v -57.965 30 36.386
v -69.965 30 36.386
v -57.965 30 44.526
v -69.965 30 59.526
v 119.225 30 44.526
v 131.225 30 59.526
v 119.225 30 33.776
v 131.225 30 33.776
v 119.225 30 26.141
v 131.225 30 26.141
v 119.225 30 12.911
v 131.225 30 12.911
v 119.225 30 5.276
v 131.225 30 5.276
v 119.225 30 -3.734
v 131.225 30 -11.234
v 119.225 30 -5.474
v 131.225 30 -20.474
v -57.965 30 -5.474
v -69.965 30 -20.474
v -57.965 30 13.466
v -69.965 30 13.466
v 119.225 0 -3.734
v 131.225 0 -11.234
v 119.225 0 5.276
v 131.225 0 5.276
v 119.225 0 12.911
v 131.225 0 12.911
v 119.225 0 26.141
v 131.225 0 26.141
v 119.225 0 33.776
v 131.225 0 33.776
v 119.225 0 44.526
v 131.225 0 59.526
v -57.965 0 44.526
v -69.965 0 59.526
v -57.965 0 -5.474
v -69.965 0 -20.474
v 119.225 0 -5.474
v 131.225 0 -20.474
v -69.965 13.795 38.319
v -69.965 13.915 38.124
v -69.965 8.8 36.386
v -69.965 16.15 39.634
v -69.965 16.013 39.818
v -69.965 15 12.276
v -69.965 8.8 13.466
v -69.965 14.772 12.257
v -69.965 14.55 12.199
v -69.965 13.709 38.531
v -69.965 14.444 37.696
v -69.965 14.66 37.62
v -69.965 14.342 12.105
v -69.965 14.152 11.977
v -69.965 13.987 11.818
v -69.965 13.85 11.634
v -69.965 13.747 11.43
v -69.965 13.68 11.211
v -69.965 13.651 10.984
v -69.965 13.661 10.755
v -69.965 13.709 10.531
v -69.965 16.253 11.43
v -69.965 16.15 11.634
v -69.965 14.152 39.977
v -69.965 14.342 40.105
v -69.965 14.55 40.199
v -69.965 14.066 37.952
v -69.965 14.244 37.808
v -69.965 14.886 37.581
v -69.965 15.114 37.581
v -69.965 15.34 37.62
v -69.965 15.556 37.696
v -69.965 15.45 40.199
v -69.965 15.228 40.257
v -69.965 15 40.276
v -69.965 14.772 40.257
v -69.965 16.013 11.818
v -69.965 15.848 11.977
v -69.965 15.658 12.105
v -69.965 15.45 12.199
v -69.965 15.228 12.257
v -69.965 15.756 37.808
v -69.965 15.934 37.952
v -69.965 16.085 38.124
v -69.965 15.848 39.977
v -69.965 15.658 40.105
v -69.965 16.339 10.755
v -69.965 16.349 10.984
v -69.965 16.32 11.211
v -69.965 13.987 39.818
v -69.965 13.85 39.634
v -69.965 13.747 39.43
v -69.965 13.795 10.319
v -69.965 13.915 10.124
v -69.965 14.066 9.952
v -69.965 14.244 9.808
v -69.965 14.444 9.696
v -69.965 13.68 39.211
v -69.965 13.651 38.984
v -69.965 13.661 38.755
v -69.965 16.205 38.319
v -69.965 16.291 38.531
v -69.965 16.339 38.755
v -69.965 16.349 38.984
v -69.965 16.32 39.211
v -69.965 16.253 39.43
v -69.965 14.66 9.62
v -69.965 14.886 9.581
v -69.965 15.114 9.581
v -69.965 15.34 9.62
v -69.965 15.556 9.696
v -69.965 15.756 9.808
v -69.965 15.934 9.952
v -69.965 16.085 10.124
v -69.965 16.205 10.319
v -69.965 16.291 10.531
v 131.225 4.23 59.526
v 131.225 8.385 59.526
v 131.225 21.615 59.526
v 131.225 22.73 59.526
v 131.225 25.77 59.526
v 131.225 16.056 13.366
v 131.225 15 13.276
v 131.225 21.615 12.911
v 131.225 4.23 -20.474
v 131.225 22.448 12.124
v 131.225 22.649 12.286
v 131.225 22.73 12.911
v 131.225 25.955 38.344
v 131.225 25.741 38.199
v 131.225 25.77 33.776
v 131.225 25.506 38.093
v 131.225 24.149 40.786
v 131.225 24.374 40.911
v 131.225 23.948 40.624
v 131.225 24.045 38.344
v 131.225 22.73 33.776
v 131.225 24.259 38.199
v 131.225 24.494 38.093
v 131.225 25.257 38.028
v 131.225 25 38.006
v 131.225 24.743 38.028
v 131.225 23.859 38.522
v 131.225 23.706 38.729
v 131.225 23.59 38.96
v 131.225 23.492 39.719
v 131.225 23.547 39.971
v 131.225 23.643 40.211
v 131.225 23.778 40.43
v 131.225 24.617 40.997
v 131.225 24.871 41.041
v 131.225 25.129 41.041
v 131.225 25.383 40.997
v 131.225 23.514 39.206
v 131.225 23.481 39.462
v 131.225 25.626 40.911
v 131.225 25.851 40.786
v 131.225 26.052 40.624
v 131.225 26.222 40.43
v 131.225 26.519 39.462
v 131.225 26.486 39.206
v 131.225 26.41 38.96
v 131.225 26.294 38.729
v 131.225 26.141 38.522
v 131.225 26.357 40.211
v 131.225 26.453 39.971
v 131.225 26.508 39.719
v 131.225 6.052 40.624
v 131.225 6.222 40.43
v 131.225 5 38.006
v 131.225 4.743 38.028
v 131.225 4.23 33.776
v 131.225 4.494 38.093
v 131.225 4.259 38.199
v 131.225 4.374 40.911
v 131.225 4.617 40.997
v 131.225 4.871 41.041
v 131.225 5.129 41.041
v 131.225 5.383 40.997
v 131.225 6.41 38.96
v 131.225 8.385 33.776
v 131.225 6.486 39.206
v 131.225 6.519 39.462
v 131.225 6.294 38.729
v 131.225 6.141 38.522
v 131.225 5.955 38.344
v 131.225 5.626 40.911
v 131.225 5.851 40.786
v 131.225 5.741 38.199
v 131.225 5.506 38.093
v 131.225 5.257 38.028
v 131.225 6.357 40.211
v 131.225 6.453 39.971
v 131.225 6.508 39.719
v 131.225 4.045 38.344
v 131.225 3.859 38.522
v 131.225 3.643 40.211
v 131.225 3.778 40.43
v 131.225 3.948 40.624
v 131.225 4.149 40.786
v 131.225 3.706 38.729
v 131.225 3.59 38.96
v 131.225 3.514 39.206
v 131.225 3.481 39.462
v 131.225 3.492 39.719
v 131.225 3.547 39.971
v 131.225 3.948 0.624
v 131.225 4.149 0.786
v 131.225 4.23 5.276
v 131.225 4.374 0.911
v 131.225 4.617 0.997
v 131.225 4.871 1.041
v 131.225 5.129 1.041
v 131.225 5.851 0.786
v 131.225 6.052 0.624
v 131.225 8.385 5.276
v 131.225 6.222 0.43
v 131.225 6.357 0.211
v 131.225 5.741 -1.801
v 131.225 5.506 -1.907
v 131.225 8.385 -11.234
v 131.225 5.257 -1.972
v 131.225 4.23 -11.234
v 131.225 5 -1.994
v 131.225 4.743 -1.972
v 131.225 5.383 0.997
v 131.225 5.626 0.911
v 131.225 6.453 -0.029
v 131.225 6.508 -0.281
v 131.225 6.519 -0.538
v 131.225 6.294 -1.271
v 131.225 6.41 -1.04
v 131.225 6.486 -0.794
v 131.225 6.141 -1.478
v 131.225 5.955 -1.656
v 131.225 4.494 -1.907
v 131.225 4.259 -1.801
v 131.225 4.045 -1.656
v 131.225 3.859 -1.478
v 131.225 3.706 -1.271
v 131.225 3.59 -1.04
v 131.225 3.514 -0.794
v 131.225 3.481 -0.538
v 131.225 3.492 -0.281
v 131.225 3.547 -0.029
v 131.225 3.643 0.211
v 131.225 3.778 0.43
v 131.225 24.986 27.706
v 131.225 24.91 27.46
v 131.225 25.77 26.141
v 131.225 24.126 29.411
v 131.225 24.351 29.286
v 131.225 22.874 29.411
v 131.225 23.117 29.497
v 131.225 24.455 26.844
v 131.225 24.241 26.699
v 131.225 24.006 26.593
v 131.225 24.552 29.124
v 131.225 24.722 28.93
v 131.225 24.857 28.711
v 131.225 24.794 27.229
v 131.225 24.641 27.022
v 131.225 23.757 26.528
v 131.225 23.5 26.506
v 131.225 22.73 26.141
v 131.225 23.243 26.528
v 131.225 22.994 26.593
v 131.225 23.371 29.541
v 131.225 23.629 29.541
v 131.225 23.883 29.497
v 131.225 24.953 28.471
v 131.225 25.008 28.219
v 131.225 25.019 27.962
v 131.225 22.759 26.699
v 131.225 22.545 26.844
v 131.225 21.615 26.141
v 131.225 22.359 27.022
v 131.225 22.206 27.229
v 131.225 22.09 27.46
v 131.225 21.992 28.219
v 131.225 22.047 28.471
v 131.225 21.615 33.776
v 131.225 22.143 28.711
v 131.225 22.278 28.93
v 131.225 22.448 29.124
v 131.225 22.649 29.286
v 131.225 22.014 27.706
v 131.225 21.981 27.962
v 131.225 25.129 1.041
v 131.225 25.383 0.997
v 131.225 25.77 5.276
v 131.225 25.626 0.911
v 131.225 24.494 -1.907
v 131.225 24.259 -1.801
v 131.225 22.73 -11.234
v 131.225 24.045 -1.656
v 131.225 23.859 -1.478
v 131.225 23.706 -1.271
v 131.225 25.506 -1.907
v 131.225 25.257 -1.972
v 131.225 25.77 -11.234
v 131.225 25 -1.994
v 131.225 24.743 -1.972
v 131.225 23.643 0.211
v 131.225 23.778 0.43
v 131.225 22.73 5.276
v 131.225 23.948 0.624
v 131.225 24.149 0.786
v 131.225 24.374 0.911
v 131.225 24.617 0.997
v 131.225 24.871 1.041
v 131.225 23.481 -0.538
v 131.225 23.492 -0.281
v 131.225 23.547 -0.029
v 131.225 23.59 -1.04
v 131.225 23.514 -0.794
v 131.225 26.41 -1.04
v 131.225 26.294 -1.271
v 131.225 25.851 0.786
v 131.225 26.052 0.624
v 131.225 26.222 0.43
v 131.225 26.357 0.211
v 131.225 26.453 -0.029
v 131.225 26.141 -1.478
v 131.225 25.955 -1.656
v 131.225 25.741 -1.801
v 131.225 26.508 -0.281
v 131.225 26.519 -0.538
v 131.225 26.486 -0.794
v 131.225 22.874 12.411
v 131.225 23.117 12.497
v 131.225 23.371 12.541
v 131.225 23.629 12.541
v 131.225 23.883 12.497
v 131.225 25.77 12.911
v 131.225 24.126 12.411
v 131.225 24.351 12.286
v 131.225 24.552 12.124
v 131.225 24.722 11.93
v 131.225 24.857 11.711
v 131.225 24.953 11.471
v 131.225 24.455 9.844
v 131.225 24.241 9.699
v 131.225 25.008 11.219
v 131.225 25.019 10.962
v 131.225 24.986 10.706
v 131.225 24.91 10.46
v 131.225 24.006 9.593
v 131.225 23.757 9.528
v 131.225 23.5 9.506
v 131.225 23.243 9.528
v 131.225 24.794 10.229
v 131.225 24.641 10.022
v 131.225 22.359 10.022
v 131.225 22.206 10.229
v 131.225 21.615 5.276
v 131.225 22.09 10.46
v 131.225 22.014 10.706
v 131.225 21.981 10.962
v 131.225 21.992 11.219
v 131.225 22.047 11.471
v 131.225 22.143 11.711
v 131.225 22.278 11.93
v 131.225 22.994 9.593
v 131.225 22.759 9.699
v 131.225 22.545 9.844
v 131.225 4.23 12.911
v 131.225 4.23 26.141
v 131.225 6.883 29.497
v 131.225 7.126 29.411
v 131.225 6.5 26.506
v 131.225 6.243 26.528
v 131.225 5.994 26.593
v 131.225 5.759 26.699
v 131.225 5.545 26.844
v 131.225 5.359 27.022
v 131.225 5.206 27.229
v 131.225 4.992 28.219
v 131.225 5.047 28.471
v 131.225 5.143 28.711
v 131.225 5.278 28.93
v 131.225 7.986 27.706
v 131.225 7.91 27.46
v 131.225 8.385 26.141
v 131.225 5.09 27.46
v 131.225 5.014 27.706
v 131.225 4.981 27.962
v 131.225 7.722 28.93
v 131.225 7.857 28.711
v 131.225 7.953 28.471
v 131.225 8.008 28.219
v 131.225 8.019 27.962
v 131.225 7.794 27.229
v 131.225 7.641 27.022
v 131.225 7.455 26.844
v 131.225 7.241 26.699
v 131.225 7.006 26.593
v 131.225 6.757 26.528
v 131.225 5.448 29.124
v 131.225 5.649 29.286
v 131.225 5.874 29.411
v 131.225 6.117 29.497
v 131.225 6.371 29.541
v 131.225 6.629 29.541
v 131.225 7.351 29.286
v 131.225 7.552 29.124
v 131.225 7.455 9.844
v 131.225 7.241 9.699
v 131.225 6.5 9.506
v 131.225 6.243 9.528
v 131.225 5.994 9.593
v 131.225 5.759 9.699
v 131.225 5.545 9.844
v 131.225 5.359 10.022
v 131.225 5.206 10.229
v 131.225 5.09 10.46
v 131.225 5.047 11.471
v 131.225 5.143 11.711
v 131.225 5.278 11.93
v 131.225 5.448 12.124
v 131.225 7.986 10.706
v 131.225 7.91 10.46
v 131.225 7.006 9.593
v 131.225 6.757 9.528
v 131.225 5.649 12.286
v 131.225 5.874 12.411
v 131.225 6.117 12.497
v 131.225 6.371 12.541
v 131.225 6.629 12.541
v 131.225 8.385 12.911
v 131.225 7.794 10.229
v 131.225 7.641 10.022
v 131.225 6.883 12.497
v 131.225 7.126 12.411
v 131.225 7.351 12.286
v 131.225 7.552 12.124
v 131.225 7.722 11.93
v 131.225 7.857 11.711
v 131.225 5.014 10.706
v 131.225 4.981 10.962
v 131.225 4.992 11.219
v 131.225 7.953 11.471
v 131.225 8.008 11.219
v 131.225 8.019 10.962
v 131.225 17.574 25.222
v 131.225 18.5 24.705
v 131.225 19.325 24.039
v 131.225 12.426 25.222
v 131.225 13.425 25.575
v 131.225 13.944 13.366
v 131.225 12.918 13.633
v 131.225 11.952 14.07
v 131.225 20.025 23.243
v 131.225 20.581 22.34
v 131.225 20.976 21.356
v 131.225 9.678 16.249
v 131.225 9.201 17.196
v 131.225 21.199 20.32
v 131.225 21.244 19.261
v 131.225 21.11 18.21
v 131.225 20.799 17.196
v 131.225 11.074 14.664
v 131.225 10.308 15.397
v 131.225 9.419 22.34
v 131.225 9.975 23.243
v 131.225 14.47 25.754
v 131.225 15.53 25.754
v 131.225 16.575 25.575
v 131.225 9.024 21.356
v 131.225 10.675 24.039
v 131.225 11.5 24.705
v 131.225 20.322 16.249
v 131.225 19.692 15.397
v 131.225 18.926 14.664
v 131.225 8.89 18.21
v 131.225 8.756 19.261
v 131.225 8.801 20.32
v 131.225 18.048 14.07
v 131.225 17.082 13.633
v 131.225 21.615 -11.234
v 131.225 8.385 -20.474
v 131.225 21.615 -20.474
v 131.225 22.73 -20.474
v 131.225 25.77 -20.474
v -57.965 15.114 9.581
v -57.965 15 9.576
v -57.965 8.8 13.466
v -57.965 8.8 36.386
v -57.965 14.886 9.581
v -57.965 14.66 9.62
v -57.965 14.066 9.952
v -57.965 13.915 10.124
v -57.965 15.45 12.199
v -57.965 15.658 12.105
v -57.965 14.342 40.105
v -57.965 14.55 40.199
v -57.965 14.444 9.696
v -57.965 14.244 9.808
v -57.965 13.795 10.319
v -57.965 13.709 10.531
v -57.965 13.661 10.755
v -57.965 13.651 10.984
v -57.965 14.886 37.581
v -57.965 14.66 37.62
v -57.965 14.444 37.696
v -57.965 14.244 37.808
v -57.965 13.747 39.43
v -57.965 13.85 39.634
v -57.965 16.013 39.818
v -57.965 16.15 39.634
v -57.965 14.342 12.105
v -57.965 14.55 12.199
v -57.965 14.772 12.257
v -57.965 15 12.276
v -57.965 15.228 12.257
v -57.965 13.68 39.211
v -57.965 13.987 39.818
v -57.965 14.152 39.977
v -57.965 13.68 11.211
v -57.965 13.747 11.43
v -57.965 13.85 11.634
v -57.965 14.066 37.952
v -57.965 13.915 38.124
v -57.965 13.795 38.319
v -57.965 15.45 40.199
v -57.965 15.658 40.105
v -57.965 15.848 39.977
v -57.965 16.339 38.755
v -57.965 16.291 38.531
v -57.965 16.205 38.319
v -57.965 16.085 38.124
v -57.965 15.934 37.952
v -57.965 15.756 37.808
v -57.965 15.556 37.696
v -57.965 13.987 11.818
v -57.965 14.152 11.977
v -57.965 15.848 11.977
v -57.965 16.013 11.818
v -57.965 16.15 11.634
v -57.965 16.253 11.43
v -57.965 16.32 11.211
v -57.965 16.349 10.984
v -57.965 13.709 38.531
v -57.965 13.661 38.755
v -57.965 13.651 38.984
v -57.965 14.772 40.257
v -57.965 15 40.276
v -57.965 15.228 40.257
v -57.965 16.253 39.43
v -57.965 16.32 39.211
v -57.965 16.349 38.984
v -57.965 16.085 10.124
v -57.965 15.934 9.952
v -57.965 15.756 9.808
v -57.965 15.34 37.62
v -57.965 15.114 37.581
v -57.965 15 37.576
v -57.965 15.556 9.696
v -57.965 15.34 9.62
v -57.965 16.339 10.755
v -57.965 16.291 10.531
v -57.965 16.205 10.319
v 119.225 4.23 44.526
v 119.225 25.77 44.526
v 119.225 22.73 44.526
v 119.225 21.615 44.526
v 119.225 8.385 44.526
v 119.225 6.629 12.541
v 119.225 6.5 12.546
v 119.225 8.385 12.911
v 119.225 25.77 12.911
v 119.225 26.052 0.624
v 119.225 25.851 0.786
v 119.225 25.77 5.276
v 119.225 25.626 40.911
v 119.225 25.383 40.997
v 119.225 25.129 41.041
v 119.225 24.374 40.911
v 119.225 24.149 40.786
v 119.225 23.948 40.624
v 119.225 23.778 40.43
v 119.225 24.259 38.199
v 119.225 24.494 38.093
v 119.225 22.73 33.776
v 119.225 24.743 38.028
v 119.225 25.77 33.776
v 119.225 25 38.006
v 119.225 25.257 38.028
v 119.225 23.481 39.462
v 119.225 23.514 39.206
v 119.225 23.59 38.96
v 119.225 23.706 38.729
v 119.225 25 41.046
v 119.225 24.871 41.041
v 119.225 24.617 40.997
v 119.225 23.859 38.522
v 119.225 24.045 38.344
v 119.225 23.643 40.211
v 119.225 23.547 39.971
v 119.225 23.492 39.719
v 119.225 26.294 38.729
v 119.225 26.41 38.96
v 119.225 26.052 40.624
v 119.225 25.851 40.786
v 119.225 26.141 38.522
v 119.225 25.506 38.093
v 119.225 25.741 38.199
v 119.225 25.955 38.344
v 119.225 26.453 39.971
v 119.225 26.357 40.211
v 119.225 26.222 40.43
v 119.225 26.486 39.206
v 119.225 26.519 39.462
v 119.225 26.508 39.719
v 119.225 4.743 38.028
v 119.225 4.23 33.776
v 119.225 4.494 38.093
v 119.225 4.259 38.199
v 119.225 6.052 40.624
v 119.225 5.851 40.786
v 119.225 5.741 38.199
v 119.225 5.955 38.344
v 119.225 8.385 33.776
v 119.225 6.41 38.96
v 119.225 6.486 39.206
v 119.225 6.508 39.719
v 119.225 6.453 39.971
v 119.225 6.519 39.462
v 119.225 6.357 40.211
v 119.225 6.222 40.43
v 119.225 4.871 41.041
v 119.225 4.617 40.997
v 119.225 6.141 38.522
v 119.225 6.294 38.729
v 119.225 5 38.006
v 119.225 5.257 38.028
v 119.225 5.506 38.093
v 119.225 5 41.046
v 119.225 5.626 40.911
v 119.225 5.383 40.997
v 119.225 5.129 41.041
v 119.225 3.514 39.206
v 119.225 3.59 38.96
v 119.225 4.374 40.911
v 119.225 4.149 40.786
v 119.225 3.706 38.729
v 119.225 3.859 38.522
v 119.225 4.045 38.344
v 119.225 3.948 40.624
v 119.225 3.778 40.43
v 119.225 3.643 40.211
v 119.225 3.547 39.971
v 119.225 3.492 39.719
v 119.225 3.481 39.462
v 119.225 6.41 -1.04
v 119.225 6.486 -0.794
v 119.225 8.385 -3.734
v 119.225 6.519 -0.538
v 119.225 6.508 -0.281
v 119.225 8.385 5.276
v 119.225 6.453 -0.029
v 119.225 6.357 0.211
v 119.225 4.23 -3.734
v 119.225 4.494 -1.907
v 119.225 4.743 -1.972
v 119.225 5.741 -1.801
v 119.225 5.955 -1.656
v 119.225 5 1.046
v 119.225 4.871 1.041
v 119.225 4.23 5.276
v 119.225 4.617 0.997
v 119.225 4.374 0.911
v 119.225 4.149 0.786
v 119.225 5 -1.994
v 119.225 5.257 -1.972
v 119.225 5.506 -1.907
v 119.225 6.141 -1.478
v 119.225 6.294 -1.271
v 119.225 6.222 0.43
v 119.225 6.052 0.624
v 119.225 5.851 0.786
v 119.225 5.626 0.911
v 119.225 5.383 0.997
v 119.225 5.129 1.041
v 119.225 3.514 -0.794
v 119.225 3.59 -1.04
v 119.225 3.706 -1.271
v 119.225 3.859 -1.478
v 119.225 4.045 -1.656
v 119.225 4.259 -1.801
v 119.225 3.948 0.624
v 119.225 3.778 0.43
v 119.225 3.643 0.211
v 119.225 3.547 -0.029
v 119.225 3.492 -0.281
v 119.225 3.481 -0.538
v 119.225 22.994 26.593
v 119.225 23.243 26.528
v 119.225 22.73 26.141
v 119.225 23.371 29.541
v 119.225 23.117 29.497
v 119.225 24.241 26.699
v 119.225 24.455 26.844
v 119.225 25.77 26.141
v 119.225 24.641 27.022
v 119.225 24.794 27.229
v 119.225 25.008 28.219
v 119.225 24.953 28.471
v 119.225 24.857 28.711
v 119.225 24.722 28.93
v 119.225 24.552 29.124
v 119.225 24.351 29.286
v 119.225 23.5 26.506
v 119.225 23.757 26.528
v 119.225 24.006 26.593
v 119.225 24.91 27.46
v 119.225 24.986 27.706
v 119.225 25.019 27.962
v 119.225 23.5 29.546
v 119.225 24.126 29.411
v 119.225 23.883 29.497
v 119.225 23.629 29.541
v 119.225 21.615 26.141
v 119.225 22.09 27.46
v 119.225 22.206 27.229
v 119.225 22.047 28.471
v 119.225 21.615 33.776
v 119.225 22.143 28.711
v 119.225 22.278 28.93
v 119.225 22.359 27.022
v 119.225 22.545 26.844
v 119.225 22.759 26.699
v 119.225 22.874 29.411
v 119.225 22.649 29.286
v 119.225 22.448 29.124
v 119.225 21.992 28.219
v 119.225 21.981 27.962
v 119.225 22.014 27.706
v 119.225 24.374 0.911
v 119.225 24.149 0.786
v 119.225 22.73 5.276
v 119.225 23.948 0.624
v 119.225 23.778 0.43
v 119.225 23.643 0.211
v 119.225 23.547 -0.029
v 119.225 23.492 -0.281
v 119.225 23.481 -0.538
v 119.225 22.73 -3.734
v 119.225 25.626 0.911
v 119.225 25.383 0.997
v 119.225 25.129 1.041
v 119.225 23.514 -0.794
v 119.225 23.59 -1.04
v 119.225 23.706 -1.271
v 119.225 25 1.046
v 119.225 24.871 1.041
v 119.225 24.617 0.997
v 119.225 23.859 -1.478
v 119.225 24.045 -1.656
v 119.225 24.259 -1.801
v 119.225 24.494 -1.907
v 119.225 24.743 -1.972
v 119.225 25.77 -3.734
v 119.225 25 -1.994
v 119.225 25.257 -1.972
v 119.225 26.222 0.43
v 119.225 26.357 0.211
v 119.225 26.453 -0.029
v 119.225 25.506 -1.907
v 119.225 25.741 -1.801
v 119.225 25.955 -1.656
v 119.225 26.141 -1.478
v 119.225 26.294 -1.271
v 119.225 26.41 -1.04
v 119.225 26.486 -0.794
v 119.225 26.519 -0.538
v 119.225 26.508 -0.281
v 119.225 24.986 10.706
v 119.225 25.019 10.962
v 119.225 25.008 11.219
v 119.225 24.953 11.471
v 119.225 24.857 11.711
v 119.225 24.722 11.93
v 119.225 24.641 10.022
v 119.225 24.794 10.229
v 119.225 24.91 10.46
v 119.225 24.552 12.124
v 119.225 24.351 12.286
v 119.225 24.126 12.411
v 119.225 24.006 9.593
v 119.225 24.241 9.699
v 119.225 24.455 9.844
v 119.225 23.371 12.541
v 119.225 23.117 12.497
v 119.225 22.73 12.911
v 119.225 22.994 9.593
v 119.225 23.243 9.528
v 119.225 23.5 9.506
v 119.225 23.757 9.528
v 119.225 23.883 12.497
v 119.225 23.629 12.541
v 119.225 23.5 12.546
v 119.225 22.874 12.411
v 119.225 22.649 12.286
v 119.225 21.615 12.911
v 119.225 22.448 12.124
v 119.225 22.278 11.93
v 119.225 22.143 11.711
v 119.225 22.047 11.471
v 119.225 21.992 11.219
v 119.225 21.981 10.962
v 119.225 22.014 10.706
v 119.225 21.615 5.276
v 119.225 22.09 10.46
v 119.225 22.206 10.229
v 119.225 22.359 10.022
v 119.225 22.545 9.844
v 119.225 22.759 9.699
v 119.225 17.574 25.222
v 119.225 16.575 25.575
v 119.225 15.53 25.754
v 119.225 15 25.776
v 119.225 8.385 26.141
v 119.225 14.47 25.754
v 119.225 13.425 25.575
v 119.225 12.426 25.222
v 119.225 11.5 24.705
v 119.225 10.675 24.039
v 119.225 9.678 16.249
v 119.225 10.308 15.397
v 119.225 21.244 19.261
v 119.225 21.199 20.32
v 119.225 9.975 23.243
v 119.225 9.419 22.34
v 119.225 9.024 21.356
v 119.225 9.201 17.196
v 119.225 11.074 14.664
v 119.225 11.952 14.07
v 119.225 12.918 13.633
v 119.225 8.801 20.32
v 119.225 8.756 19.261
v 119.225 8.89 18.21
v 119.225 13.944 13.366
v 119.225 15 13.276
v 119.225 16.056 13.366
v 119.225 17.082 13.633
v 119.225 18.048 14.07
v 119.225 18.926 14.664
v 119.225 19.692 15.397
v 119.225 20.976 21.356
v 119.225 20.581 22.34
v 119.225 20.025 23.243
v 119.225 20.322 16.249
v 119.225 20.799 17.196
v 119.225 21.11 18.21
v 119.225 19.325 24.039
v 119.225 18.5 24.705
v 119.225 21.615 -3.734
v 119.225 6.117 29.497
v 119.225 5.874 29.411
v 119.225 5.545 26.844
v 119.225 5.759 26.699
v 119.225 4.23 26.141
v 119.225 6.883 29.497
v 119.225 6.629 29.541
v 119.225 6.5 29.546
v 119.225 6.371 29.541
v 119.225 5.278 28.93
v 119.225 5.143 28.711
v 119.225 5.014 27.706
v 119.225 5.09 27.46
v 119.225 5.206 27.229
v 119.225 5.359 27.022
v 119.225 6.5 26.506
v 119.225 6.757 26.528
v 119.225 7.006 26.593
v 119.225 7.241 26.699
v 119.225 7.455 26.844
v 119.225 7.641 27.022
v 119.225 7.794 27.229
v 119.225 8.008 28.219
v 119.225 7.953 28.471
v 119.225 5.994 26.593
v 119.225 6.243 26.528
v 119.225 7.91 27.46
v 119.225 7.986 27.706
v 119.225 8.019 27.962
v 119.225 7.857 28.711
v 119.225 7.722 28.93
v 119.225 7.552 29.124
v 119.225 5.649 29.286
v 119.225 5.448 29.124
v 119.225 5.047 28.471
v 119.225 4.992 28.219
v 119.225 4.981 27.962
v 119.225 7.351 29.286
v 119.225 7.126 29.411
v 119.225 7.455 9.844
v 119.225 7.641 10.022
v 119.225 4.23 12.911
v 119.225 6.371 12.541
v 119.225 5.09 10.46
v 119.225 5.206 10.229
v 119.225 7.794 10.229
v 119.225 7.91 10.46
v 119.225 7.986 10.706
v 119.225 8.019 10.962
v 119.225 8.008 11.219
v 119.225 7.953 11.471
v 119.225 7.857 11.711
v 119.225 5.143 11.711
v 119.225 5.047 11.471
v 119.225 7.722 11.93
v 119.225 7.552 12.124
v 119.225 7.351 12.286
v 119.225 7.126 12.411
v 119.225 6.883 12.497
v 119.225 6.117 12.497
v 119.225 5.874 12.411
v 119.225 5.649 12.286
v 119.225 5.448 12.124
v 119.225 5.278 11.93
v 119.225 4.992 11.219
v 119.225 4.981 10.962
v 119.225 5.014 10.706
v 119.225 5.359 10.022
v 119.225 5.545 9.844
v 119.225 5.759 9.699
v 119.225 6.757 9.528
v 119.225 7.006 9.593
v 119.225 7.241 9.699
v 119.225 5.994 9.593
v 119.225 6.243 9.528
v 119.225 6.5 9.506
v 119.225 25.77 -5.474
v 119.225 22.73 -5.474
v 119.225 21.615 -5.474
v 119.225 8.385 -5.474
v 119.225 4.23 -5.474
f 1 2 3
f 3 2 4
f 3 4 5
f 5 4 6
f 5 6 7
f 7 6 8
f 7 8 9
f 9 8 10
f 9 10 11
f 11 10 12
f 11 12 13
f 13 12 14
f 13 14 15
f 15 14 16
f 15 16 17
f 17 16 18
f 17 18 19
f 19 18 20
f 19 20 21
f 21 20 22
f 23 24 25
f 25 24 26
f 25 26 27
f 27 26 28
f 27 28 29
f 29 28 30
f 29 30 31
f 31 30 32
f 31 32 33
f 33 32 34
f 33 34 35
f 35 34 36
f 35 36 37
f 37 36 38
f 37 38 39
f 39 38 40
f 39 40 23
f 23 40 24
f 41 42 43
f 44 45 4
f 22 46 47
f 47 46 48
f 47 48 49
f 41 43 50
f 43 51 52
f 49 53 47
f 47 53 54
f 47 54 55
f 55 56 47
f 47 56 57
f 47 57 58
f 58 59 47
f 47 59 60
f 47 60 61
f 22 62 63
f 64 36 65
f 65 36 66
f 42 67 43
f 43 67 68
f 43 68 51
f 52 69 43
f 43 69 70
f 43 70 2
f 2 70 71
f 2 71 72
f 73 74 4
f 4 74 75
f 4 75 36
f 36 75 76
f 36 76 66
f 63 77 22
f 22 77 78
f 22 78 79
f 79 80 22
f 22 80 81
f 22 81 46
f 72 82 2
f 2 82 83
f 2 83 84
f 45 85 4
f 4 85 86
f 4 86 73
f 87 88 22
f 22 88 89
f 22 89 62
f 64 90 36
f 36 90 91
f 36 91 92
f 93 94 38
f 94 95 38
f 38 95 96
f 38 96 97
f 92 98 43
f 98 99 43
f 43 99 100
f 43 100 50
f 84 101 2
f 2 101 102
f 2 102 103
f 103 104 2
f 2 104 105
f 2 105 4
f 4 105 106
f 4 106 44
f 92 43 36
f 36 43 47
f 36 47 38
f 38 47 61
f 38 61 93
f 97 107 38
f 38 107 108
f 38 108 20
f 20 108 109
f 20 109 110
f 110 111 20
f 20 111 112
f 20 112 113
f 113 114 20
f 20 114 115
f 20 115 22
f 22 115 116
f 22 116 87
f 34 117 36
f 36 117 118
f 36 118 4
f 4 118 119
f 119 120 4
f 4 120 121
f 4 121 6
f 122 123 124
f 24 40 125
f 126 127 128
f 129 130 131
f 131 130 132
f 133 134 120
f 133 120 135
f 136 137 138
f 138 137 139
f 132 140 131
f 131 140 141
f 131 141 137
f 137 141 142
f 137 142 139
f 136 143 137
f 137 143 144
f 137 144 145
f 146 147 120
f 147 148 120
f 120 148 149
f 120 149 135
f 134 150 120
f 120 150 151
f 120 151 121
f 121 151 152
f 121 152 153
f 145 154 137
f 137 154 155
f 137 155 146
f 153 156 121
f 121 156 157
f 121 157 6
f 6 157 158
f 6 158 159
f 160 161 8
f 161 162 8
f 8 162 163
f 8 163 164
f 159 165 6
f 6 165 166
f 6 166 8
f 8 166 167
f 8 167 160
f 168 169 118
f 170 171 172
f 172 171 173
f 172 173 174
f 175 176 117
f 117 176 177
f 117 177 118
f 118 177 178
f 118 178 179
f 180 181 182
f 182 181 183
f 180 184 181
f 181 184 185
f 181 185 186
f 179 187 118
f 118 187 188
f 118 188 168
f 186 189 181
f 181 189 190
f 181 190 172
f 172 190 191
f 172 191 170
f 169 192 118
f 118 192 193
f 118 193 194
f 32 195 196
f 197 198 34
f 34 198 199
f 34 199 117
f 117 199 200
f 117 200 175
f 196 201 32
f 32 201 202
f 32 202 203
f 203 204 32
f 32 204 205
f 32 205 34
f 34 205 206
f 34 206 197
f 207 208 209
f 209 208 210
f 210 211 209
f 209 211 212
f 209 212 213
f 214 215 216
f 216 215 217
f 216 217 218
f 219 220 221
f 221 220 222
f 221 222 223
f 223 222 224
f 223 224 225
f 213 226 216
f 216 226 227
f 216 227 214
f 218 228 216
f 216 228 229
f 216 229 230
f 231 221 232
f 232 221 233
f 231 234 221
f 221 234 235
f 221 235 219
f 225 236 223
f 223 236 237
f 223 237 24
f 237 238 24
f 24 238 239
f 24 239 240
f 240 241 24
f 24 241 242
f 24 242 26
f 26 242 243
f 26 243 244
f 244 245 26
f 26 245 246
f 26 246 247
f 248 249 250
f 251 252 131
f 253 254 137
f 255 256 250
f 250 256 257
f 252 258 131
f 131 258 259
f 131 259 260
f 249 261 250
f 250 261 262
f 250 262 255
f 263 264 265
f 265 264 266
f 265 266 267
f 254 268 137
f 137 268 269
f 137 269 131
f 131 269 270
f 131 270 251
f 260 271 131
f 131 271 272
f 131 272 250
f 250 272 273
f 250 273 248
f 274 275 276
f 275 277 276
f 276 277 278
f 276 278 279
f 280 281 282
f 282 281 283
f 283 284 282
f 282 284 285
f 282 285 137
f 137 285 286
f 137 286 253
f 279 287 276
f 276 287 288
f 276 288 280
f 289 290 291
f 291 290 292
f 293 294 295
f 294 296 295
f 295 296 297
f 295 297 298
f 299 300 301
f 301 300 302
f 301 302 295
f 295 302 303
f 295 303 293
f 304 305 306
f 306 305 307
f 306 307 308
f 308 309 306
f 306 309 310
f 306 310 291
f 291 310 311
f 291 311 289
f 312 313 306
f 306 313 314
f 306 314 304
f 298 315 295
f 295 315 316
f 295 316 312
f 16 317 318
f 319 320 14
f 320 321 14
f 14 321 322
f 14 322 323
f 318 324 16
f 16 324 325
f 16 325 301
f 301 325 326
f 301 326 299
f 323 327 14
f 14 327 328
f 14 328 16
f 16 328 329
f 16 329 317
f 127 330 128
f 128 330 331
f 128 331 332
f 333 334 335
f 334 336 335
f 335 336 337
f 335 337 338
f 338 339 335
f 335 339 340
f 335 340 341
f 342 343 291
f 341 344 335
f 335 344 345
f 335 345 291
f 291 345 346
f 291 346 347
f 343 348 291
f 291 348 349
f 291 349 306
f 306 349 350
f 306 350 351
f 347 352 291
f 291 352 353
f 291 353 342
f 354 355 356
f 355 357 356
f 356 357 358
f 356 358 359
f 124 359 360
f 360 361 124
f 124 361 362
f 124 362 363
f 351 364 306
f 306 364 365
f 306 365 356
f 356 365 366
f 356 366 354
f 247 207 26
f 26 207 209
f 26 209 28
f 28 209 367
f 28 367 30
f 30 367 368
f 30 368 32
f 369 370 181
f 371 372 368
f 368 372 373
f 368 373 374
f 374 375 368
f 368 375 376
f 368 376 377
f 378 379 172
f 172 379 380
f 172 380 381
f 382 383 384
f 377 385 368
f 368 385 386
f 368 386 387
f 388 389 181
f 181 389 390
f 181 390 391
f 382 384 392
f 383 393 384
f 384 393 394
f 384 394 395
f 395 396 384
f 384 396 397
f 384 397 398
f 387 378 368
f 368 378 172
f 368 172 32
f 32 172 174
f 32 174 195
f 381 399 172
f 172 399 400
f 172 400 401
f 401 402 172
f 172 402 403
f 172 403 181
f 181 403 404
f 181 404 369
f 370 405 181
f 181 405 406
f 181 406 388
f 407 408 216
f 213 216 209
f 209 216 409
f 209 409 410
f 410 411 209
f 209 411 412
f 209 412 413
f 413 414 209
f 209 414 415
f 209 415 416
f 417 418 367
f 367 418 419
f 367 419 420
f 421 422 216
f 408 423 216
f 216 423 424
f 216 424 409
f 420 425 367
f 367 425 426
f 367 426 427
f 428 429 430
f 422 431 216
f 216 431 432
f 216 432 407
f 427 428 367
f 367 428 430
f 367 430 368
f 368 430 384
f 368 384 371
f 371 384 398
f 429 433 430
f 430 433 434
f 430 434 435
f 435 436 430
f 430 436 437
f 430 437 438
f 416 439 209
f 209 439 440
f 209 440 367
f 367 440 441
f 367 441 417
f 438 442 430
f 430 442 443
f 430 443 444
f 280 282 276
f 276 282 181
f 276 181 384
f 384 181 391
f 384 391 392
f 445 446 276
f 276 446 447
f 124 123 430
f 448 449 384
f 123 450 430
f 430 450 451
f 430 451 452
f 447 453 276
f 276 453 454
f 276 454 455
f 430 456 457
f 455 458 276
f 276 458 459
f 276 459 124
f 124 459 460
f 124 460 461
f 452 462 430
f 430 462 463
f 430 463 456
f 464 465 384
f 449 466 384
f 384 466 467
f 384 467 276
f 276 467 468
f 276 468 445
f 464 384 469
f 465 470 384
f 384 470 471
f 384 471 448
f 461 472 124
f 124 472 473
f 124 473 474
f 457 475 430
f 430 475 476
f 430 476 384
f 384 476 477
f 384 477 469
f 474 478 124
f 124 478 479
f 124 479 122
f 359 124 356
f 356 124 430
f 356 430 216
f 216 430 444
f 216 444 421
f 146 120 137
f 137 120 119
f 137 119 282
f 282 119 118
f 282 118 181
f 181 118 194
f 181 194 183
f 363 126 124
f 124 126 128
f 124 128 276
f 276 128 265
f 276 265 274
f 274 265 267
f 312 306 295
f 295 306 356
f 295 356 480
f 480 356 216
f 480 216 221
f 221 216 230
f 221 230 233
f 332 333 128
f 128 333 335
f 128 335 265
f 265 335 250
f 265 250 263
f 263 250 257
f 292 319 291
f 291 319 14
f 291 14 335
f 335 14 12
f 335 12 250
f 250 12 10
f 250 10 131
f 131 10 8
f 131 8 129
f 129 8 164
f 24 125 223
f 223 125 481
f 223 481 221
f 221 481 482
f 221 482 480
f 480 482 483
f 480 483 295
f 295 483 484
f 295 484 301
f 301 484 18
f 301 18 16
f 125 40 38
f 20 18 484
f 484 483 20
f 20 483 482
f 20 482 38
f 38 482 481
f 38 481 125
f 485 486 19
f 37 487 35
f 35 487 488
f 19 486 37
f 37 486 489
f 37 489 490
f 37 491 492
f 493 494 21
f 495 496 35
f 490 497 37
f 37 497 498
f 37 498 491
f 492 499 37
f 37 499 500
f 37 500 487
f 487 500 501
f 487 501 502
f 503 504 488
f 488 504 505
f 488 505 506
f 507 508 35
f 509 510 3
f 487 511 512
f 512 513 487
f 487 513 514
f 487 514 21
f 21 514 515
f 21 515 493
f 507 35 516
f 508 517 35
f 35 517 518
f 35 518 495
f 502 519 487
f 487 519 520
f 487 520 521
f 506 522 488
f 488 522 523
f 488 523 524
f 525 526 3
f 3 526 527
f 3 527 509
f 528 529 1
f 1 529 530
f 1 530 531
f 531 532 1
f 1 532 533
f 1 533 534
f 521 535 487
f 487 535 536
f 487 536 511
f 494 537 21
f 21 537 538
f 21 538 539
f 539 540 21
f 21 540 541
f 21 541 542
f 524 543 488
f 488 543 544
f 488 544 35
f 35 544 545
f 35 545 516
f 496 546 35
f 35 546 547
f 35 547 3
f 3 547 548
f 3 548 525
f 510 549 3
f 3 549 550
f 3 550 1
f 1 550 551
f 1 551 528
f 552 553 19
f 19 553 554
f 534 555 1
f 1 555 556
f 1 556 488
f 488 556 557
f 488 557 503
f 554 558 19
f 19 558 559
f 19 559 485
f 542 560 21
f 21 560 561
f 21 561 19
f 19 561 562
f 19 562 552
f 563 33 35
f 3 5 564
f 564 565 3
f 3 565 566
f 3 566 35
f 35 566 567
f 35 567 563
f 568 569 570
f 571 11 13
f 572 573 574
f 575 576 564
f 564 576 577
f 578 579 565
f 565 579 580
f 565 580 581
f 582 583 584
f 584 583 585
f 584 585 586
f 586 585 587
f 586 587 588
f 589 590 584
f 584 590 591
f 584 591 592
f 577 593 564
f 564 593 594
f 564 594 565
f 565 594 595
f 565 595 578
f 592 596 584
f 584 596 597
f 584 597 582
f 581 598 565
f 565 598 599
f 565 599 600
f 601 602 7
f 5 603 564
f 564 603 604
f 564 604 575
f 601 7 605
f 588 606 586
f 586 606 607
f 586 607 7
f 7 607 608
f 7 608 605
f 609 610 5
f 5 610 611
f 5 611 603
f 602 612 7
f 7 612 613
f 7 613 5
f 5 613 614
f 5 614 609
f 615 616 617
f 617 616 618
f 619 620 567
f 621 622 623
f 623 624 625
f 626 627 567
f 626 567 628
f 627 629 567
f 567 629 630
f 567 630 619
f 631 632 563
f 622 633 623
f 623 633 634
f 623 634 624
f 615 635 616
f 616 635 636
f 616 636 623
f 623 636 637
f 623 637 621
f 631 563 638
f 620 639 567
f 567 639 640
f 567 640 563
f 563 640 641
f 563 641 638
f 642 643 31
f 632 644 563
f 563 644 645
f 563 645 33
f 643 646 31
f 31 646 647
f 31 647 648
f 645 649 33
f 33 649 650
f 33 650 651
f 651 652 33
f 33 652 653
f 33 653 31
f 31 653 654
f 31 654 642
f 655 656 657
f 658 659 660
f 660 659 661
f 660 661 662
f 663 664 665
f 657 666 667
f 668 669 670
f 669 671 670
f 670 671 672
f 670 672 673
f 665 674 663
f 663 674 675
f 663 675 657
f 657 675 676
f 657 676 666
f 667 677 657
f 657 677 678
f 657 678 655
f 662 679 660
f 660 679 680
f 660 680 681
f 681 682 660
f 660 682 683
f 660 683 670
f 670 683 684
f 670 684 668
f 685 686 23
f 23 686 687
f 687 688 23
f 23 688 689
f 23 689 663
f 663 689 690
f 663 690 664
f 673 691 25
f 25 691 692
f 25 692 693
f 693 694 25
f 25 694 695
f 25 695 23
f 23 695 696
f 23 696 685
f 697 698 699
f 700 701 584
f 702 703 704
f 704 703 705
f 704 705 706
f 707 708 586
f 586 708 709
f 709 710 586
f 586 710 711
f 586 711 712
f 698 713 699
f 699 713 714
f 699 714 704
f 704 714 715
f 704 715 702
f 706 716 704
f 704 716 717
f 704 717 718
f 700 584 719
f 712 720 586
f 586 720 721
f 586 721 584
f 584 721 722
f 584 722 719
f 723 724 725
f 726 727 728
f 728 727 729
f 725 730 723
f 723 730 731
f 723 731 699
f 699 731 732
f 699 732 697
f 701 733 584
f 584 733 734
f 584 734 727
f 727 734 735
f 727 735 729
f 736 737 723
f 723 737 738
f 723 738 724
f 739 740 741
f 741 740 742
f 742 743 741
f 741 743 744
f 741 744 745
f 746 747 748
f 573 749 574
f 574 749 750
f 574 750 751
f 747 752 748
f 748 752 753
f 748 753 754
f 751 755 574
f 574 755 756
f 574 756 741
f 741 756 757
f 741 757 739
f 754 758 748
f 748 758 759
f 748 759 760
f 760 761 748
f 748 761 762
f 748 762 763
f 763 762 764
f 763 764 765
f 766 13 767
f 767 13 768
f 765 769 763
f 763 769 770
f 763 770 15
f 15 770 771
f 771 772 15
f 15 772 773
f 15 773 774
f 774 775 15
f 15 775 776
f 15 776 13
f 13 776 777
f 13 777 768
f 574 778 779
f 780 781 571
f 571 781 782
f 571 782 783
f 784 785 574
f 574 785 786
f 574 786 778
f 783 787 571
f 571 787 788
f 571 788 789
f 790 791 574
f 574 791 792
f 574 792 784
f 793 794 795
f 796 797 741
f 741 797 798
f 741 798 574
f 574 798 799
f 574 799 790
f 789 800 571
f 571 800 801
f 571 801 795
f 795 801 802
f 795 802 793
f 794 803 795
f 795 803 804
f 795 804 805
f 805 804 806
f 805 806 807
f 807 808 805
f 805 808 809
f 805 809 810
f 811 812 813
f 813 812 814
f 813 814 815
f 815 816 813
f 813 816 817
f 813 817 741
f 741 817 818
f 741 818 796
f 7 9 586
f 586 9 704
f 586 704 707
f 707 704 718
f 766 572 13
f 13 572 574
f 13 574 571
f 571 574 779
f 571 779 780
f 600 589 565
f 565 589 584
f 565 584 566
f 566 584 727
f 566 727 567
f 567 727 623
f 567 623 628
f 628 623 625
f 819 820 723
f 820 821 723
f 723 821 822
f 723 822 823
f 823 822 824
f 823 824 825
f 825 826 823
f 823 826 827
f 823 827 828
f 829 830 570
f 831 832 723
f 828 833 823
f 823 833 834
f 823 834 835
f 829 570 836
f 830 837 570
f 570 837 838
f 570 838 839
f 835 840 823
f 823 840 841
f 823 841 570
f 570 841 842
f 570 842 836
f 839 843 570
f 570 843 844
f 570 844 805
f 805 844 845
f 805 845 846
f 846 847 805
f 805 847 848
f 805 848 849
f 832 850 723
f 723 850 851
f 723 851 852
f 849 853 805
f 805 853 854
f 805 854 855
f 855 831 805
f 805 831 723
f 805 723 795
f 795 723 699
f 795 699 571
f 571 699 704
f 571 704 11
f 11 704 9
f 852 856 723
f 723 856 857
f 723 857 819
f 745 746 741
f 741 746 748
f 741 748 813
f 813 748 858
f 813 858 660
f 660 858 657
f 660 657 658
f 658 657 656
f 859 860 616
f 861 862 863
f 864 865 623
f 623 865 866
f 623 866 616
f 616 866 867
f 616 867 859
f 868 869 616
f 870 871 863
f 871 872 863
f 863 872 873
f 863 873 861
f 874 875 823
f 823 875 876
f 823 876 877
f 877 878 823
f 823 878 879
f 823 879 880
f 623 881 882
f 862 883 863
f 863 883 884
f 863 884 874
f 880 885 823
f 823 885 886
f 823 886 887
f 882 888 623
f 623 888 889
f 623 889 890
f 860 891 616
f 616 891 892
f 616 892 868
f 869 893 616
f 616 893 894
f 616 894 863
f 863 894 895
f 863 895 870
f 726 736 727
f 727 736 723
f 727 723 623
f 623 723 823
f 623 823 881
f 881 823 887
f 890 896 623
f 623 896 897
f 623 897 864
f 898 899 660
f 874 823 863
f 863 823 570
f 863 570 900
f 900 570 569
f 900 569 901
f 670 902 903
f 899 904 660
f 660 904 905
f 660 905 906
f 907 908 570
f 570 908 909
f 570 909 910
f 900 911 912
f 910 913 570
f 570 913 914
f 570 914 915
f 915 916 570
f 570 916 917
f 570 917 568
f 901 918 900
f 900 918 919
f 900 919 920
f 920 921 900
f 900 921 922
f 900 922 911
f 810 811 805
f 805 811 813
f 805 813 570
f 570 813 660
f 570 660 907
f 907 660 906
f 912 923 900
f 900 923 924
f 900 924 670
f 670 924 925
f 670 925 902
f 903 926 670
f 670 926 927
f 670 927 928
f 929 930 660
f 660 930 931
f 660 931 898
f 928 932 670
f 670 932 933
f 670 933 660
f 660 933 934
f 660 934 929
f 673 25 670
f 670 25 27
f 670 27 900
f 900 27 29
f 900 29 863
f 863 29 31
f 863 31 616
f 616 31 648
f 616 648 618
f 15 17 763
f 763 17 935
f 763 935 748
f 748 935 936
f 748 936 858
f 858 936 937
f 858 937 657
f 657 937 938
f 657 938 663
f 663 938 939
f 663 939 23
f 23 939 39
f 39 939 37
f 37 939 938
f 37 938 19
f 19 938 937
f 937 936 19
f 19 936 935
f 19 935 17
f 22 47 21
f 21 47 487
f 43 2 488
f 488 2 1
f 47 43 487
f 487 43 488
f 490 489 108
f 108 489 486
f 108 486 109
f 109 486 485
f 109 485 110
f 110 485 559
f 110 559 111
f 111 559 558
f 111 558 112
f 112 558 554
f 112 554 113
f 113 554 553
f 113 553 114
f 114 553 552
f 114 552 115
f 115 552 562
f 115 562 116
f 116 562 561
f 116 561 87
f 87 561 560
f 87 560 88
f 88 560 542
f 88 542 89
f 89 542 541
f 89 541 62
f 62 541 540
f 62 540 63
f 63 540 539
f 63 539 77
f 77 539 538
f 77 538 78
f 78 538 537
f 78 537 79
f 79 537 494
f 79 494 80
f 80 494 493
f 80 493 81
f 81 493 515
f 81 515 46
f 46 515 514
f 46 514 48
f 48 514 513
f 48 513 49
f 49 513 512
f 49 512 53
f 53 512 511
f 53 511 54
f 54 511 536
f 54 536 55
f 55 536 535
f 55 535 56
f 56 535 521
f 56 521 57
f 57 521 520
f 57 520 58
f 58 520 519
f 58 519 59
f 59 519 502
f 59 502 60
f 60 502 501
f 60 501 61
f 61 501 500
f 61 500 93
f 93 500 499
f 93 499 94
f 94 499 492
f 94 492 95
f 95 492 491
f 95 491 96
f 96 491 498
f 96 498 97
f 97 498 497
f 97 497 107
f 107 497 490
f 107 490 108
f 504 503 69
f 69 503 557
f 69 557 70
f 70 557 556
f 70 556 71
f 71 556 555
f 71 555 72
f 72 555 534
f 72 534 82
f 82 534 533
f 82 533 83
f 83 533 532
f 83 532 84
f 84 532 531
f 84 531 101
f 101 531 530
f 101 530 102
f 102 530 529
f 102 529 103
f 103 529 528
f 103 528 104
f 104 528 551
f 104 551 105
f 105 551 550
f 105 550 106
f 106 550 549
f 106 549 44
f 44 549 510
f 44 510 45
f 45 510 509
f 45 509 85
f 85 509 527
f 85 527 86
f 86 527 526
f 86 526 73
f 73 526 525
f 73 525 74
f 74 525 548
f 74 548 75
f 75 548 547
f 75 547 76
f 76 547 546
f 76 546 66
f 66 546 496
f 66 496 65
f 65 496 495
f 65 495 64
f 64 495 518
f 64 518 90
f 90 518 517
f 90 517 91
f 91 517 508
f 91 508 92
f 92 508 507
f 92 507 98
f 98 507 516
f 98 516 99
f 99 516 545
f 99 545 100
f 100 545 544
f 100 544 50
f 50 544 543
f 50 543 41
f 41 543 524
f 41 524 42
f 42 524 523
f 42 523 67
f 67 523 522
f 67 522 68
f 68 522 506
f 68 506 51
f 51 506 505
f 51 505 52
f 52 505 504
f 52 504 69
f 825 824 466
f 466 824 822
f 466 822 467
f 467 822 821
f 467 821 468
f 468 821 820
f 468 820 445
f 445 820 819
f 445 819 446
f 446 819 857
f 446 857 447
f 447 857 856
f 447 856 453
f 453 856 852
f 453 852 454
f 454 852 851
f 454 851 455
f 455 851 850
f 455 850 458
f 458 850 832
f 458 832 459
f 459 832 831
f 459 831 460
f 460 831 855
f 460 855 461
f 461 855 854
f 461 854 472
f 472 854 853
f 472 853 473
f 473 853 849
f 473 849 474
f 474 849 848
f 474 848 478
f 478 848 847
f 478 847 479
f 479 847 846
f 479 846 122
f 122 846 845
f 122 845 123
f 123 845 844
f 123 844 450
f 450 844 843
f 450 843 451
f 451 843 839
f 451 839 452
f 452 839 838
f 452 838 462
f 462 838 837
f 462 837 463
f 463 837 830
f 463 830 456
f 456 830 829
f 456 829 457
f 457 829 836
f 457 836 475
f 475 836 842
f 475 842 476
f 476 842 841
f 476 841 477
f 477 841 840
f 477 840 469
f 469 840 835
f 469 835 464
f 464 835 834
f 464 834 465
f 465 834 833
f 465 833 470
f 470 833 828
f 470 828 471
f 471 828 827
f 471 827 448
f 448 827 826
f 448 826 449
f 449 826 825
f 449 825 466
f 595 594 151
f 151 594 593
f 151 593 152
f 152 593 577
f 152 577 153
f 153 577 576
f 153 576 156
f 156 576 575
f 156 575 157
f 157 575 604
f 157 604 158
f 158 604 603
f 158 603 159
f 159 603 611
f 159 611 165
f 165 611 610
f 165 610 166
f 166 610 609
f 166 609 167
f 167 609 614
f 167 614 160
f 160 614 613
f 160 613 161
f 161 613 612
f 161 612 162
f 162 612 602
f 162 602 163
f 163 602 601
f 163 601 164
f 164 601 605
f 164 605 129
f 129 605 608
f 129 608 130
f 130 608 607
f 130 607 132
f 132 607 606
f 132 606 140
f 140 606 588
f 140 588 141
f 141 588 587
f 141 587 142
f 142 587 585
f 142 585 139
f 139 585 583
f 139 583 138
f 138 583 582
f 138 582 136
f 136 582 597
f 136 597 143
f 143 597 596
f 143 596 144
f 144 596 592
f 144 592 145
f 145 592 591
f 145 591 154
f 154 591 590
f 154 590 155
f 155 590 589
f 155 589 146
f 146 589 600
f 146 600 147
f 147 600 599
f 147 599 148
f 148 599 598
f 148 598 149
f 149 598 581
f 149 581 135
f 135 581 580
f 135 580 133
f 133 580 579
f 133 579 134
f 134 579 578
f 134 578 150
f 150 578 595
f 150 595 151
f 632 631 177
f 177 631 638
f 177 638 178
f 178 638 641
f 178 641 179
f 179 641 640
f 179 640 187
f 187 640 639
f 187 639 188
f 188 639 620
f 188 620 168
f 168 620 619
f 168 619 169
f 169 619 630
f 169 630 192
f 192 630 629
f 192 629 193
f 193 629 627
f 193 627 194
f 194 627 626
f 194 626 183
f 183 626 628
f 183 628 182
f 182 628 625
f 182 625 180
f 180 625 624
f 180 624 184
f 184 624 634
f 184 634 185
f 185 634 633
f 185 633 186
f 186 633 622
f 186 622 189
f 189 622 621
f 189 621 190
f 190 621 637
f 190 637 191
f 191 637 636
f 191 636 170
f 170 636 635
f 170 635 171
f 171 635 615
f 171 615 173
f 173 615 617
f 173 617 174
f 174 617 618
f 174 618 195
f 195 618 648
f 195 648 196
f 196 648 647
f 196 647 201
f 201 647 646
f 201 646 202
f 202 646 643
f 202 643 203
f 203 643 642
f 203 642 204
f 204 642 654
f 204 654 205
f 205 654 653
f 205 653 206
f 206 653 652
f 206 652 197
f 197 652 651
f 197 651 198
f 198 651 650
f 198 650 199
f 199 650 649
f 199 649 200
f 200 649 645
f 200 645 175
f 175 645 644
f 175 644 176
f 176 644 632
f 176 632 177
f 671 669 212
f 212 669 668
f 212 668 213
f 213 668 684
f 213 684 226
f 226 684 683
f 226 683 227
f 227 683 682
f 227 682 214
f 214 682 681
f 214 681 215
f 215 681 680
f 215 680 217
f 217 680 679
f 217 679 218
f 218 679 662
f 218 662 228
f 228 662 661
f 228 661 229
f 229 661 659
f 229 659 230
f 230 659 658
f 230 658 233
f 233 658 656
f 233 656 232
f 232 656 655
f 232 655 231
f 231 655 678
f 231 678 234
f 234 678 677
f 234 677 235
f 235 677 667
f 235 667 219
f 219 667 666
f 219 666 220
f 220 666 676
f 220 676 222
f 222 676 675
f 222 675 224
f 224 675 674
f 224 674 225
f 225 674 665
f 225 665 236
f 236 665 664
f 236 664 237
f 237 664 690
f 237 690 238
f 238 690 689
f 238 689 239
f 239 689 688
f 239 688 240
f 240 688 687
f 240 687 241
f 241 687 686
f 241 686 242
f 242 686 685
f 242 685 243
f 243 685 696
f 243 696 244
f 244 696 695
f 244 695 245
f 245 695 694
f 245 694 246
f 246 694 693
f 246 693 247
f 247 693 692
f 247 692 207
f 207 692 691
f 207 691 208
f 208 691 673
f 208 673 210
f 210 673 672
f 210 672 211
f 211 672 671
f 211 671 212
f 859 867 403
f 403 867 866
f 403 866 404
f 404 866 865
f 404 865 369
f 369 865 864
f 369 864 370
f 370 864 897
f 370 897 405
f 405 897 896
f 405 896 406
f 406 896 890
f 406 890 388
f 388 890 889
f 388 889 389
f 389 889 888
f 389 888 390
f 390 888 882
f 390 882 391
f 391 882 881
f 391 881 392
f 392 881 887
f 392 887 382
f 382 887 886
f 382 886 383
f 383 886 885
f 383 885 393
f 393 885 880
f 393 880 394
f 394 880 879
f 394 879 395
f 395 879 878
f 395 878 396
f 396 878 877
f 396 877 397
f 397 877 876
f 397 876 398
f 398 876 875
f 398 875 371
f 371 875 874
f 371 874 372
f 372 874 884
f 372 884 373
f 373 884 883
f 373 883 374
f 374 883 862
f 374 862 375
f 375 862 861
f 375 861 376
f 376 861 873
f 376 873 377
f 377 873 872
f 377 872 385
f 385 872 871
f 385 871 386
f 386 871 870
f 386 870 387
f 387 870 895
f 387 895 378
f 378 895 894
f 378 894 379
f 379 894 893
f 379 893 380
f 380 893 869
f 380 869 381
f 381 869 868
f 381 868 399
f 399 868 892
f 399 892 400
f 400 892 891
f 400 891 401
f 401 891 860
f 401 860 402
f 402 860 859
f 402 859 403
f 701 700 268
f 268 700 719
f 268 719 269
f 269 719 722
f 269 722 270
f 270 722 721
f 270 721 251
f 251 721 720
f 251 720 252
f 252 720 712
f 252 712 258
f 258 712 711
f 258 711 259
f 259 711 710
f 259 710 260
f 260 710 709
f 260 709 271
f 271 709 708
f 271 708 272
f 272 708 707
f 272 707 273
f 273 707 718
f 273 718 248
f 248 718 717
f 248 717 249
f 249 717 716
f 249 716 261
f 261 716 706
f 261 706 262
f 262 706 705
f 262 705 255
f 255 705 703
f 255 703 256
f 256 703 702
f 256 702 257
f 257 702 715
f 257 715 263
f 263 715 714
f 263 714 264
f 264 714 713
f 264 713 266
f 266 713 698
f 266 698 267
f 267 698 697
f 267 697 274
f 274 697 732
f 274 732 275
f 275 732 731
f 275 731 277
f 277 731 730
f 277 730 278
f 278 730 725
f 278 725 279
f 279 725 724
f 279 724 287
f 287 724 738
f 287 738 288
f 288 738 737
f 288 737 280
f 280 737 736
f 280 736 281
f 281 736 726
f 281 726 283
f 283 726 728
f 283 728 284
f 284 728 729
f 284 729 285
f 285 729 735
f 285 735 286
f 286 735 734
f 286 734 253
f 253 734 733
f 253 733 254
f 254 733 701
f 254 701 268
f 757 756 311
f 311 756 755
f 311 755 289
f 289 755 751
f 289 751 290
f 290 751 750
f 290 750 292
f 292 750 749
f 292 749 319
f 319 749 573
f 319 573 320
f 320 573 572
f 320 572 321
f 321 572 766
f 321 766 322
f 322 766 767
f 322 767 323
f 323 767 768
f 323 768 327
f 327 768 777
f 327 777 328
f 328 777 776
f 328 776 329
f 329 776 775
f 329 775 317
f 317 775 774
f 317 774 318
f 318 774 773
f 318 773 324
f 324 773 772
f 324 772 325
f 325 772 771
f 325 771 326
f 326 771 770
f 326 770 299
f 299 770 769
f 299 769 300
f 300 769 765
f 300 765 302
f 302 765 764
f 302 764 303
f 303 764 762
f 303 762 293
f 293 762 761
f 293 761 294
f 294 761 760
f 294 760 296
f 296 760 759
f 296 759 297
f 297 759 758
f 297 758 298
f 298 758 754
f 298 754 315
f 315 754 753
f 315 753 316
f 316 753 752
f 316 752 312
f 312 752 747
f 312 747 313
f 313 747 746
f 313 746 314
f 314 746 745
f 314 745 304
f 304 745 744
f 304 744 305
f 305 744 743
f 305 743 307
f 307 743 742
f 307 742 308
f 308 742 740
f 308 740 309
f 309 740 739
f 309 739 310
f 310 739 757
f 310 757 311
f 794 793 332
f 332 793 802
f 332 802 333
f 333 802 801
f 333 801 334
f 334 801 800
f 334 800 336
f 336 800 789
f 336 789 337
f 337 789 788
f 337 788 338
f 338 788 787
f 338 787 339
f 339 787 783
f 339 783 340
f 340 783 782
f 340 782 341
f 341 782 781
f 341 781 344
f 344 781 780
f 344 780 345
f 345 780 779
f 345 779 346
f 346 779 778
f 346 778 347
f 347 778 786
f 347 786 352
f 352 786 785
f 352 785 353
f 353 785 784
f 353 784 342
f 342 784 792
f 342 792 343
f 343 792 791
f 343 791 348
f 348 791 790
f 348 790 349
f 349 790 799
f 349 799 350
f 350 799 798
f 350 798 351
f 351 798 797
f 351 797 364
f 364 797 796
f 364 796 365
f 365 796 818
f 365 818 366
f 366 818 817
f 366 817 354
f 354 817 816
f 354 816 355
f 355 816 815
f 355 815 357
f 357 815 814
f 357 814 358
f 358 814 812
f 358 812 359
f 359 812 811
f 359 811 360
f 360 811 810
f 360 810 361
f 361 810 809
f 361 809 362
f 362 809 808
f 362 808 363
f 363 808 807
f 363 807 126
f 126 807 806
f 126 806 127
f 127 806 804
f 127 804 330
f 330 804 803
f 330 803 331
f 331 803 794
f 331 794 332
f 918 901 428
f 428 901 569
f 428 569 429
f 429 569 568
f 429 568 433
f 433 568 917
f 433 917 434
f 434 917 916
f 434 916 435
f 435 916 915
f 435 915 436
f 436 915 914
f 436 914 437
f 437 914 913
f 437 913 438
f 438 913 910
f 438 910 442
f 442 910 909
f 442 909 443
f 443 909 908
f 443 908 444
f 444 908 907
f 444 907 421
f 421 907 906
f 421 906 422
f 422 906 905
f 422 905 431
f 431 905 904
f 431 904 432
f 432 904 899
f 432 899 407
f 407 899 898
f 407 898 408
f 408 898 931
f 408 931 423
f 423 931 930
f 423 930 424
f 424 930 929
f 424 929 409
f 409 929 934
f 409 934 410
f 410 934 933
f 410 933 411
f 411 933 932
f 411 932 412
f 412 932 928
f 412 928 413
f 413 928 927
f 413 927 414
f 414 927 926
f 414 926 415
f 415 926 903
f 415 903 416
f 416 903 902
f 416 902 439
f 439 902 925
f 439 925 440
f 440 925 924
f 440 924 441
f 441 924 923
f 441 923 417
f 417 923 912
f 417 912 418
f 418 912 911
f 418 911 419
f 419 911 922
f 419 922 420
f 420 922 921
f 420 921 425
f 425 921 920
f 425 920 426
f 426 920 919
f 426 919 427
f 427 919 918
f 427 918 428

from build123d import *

# Parameters (mm, degrees)
SKETCH1_W           = 201.19
SKETCH1_H           = 80
SKETCH1_W_2         = 177.19
SKETCH1_H_2         = 50
BOSS_EXTRUDE1_DEPTH = 30
SKETCH2_R           = 1.35
SKETCH2_W           = 22.92
SKETCH2_H           = 21.2
CUT_EXTRUDE1_DEPTH  = 30
SKETCH4_R           = 6.25
SKETCH4_R_2         = 1.52
CUT_EXTRUDE2_DEPTH  = 30


with BuildPart() as part:
    # Sketch1 → Boss-Extrude1 (new body)
    with BuildSketch(Plane(origin=(0, 0, 0), x_dir=(1, 0, 0), z_dir=(0, 1, 0))):
        with Locations((30.629887821, -19.526338141)):
            Rectangle(SKETCH1_W, SKETCH1_H)
        with Locations((30.629887821, -19.526338141)):
            Rectangle(SKETCH1_W_2, SKETCH1_H_2, mode=Mode.SUBTRACT)
    extrude(amount=BOSS_EXTRUDE1_DEPTH)

    # Sketch2 → Cut-Extrude1 (cut)
    with BuildSketch(Plane.ZY.offset(69.965112179)):
        with Locations((10.926338141, 15)):
            Circle(SKETCH2_R)
        with Locations((38.926338141, 15)):
            Circle(SKETCH2_R)
        with Locations((24.926338141, 19.4)):
            Rectangle(SKETCH2_W, SKETCH2_H)
    extrude(amount=-CUT_EXTRUDE1_DEPTH, mode=Mode.SUBTRACT)

    # Sketch4 → Cut-Extrude2 (cut)
    with BuildSketch(Plane(origin=(131.224887821, 0, 0), x_dir=(0, 0, -1), z_dir=(1, 0, 0))):
        with Locations((-19.526338141, 15)):
            Circle(SKETCH4_R)
        with Locations((-28.026338141, 23.5)):
            Circle(SKETCH4_R_2)
        with Locations((-11.026338141, 23.5)):
            Circle(SKETCH4_R_2)
        with Locations((-11.026338141, 6.5)):
            Circle(SKETCH4_R_2)
        with Locations((-28.026338141, 6.5)):
            Circle(SKETCH4_R_2)
        with Locations((0.473661859, 25)):
            Circle(SKETCH4_R_2)
        with Locations((0.473661859, 5)):
            Circle(SKETCH4_R_2)
        with Locations((-39.526338141, 5)):
            Circle(SKETCH4_R_2)
        with Locations((-39.526338141, 25)):
            Circle(SKETCH4_R_2)
    extrude(amount=-CUT_EXTRUDE2_DEPTH, mode=Mode.SUBTRACT)


solid = part.part
